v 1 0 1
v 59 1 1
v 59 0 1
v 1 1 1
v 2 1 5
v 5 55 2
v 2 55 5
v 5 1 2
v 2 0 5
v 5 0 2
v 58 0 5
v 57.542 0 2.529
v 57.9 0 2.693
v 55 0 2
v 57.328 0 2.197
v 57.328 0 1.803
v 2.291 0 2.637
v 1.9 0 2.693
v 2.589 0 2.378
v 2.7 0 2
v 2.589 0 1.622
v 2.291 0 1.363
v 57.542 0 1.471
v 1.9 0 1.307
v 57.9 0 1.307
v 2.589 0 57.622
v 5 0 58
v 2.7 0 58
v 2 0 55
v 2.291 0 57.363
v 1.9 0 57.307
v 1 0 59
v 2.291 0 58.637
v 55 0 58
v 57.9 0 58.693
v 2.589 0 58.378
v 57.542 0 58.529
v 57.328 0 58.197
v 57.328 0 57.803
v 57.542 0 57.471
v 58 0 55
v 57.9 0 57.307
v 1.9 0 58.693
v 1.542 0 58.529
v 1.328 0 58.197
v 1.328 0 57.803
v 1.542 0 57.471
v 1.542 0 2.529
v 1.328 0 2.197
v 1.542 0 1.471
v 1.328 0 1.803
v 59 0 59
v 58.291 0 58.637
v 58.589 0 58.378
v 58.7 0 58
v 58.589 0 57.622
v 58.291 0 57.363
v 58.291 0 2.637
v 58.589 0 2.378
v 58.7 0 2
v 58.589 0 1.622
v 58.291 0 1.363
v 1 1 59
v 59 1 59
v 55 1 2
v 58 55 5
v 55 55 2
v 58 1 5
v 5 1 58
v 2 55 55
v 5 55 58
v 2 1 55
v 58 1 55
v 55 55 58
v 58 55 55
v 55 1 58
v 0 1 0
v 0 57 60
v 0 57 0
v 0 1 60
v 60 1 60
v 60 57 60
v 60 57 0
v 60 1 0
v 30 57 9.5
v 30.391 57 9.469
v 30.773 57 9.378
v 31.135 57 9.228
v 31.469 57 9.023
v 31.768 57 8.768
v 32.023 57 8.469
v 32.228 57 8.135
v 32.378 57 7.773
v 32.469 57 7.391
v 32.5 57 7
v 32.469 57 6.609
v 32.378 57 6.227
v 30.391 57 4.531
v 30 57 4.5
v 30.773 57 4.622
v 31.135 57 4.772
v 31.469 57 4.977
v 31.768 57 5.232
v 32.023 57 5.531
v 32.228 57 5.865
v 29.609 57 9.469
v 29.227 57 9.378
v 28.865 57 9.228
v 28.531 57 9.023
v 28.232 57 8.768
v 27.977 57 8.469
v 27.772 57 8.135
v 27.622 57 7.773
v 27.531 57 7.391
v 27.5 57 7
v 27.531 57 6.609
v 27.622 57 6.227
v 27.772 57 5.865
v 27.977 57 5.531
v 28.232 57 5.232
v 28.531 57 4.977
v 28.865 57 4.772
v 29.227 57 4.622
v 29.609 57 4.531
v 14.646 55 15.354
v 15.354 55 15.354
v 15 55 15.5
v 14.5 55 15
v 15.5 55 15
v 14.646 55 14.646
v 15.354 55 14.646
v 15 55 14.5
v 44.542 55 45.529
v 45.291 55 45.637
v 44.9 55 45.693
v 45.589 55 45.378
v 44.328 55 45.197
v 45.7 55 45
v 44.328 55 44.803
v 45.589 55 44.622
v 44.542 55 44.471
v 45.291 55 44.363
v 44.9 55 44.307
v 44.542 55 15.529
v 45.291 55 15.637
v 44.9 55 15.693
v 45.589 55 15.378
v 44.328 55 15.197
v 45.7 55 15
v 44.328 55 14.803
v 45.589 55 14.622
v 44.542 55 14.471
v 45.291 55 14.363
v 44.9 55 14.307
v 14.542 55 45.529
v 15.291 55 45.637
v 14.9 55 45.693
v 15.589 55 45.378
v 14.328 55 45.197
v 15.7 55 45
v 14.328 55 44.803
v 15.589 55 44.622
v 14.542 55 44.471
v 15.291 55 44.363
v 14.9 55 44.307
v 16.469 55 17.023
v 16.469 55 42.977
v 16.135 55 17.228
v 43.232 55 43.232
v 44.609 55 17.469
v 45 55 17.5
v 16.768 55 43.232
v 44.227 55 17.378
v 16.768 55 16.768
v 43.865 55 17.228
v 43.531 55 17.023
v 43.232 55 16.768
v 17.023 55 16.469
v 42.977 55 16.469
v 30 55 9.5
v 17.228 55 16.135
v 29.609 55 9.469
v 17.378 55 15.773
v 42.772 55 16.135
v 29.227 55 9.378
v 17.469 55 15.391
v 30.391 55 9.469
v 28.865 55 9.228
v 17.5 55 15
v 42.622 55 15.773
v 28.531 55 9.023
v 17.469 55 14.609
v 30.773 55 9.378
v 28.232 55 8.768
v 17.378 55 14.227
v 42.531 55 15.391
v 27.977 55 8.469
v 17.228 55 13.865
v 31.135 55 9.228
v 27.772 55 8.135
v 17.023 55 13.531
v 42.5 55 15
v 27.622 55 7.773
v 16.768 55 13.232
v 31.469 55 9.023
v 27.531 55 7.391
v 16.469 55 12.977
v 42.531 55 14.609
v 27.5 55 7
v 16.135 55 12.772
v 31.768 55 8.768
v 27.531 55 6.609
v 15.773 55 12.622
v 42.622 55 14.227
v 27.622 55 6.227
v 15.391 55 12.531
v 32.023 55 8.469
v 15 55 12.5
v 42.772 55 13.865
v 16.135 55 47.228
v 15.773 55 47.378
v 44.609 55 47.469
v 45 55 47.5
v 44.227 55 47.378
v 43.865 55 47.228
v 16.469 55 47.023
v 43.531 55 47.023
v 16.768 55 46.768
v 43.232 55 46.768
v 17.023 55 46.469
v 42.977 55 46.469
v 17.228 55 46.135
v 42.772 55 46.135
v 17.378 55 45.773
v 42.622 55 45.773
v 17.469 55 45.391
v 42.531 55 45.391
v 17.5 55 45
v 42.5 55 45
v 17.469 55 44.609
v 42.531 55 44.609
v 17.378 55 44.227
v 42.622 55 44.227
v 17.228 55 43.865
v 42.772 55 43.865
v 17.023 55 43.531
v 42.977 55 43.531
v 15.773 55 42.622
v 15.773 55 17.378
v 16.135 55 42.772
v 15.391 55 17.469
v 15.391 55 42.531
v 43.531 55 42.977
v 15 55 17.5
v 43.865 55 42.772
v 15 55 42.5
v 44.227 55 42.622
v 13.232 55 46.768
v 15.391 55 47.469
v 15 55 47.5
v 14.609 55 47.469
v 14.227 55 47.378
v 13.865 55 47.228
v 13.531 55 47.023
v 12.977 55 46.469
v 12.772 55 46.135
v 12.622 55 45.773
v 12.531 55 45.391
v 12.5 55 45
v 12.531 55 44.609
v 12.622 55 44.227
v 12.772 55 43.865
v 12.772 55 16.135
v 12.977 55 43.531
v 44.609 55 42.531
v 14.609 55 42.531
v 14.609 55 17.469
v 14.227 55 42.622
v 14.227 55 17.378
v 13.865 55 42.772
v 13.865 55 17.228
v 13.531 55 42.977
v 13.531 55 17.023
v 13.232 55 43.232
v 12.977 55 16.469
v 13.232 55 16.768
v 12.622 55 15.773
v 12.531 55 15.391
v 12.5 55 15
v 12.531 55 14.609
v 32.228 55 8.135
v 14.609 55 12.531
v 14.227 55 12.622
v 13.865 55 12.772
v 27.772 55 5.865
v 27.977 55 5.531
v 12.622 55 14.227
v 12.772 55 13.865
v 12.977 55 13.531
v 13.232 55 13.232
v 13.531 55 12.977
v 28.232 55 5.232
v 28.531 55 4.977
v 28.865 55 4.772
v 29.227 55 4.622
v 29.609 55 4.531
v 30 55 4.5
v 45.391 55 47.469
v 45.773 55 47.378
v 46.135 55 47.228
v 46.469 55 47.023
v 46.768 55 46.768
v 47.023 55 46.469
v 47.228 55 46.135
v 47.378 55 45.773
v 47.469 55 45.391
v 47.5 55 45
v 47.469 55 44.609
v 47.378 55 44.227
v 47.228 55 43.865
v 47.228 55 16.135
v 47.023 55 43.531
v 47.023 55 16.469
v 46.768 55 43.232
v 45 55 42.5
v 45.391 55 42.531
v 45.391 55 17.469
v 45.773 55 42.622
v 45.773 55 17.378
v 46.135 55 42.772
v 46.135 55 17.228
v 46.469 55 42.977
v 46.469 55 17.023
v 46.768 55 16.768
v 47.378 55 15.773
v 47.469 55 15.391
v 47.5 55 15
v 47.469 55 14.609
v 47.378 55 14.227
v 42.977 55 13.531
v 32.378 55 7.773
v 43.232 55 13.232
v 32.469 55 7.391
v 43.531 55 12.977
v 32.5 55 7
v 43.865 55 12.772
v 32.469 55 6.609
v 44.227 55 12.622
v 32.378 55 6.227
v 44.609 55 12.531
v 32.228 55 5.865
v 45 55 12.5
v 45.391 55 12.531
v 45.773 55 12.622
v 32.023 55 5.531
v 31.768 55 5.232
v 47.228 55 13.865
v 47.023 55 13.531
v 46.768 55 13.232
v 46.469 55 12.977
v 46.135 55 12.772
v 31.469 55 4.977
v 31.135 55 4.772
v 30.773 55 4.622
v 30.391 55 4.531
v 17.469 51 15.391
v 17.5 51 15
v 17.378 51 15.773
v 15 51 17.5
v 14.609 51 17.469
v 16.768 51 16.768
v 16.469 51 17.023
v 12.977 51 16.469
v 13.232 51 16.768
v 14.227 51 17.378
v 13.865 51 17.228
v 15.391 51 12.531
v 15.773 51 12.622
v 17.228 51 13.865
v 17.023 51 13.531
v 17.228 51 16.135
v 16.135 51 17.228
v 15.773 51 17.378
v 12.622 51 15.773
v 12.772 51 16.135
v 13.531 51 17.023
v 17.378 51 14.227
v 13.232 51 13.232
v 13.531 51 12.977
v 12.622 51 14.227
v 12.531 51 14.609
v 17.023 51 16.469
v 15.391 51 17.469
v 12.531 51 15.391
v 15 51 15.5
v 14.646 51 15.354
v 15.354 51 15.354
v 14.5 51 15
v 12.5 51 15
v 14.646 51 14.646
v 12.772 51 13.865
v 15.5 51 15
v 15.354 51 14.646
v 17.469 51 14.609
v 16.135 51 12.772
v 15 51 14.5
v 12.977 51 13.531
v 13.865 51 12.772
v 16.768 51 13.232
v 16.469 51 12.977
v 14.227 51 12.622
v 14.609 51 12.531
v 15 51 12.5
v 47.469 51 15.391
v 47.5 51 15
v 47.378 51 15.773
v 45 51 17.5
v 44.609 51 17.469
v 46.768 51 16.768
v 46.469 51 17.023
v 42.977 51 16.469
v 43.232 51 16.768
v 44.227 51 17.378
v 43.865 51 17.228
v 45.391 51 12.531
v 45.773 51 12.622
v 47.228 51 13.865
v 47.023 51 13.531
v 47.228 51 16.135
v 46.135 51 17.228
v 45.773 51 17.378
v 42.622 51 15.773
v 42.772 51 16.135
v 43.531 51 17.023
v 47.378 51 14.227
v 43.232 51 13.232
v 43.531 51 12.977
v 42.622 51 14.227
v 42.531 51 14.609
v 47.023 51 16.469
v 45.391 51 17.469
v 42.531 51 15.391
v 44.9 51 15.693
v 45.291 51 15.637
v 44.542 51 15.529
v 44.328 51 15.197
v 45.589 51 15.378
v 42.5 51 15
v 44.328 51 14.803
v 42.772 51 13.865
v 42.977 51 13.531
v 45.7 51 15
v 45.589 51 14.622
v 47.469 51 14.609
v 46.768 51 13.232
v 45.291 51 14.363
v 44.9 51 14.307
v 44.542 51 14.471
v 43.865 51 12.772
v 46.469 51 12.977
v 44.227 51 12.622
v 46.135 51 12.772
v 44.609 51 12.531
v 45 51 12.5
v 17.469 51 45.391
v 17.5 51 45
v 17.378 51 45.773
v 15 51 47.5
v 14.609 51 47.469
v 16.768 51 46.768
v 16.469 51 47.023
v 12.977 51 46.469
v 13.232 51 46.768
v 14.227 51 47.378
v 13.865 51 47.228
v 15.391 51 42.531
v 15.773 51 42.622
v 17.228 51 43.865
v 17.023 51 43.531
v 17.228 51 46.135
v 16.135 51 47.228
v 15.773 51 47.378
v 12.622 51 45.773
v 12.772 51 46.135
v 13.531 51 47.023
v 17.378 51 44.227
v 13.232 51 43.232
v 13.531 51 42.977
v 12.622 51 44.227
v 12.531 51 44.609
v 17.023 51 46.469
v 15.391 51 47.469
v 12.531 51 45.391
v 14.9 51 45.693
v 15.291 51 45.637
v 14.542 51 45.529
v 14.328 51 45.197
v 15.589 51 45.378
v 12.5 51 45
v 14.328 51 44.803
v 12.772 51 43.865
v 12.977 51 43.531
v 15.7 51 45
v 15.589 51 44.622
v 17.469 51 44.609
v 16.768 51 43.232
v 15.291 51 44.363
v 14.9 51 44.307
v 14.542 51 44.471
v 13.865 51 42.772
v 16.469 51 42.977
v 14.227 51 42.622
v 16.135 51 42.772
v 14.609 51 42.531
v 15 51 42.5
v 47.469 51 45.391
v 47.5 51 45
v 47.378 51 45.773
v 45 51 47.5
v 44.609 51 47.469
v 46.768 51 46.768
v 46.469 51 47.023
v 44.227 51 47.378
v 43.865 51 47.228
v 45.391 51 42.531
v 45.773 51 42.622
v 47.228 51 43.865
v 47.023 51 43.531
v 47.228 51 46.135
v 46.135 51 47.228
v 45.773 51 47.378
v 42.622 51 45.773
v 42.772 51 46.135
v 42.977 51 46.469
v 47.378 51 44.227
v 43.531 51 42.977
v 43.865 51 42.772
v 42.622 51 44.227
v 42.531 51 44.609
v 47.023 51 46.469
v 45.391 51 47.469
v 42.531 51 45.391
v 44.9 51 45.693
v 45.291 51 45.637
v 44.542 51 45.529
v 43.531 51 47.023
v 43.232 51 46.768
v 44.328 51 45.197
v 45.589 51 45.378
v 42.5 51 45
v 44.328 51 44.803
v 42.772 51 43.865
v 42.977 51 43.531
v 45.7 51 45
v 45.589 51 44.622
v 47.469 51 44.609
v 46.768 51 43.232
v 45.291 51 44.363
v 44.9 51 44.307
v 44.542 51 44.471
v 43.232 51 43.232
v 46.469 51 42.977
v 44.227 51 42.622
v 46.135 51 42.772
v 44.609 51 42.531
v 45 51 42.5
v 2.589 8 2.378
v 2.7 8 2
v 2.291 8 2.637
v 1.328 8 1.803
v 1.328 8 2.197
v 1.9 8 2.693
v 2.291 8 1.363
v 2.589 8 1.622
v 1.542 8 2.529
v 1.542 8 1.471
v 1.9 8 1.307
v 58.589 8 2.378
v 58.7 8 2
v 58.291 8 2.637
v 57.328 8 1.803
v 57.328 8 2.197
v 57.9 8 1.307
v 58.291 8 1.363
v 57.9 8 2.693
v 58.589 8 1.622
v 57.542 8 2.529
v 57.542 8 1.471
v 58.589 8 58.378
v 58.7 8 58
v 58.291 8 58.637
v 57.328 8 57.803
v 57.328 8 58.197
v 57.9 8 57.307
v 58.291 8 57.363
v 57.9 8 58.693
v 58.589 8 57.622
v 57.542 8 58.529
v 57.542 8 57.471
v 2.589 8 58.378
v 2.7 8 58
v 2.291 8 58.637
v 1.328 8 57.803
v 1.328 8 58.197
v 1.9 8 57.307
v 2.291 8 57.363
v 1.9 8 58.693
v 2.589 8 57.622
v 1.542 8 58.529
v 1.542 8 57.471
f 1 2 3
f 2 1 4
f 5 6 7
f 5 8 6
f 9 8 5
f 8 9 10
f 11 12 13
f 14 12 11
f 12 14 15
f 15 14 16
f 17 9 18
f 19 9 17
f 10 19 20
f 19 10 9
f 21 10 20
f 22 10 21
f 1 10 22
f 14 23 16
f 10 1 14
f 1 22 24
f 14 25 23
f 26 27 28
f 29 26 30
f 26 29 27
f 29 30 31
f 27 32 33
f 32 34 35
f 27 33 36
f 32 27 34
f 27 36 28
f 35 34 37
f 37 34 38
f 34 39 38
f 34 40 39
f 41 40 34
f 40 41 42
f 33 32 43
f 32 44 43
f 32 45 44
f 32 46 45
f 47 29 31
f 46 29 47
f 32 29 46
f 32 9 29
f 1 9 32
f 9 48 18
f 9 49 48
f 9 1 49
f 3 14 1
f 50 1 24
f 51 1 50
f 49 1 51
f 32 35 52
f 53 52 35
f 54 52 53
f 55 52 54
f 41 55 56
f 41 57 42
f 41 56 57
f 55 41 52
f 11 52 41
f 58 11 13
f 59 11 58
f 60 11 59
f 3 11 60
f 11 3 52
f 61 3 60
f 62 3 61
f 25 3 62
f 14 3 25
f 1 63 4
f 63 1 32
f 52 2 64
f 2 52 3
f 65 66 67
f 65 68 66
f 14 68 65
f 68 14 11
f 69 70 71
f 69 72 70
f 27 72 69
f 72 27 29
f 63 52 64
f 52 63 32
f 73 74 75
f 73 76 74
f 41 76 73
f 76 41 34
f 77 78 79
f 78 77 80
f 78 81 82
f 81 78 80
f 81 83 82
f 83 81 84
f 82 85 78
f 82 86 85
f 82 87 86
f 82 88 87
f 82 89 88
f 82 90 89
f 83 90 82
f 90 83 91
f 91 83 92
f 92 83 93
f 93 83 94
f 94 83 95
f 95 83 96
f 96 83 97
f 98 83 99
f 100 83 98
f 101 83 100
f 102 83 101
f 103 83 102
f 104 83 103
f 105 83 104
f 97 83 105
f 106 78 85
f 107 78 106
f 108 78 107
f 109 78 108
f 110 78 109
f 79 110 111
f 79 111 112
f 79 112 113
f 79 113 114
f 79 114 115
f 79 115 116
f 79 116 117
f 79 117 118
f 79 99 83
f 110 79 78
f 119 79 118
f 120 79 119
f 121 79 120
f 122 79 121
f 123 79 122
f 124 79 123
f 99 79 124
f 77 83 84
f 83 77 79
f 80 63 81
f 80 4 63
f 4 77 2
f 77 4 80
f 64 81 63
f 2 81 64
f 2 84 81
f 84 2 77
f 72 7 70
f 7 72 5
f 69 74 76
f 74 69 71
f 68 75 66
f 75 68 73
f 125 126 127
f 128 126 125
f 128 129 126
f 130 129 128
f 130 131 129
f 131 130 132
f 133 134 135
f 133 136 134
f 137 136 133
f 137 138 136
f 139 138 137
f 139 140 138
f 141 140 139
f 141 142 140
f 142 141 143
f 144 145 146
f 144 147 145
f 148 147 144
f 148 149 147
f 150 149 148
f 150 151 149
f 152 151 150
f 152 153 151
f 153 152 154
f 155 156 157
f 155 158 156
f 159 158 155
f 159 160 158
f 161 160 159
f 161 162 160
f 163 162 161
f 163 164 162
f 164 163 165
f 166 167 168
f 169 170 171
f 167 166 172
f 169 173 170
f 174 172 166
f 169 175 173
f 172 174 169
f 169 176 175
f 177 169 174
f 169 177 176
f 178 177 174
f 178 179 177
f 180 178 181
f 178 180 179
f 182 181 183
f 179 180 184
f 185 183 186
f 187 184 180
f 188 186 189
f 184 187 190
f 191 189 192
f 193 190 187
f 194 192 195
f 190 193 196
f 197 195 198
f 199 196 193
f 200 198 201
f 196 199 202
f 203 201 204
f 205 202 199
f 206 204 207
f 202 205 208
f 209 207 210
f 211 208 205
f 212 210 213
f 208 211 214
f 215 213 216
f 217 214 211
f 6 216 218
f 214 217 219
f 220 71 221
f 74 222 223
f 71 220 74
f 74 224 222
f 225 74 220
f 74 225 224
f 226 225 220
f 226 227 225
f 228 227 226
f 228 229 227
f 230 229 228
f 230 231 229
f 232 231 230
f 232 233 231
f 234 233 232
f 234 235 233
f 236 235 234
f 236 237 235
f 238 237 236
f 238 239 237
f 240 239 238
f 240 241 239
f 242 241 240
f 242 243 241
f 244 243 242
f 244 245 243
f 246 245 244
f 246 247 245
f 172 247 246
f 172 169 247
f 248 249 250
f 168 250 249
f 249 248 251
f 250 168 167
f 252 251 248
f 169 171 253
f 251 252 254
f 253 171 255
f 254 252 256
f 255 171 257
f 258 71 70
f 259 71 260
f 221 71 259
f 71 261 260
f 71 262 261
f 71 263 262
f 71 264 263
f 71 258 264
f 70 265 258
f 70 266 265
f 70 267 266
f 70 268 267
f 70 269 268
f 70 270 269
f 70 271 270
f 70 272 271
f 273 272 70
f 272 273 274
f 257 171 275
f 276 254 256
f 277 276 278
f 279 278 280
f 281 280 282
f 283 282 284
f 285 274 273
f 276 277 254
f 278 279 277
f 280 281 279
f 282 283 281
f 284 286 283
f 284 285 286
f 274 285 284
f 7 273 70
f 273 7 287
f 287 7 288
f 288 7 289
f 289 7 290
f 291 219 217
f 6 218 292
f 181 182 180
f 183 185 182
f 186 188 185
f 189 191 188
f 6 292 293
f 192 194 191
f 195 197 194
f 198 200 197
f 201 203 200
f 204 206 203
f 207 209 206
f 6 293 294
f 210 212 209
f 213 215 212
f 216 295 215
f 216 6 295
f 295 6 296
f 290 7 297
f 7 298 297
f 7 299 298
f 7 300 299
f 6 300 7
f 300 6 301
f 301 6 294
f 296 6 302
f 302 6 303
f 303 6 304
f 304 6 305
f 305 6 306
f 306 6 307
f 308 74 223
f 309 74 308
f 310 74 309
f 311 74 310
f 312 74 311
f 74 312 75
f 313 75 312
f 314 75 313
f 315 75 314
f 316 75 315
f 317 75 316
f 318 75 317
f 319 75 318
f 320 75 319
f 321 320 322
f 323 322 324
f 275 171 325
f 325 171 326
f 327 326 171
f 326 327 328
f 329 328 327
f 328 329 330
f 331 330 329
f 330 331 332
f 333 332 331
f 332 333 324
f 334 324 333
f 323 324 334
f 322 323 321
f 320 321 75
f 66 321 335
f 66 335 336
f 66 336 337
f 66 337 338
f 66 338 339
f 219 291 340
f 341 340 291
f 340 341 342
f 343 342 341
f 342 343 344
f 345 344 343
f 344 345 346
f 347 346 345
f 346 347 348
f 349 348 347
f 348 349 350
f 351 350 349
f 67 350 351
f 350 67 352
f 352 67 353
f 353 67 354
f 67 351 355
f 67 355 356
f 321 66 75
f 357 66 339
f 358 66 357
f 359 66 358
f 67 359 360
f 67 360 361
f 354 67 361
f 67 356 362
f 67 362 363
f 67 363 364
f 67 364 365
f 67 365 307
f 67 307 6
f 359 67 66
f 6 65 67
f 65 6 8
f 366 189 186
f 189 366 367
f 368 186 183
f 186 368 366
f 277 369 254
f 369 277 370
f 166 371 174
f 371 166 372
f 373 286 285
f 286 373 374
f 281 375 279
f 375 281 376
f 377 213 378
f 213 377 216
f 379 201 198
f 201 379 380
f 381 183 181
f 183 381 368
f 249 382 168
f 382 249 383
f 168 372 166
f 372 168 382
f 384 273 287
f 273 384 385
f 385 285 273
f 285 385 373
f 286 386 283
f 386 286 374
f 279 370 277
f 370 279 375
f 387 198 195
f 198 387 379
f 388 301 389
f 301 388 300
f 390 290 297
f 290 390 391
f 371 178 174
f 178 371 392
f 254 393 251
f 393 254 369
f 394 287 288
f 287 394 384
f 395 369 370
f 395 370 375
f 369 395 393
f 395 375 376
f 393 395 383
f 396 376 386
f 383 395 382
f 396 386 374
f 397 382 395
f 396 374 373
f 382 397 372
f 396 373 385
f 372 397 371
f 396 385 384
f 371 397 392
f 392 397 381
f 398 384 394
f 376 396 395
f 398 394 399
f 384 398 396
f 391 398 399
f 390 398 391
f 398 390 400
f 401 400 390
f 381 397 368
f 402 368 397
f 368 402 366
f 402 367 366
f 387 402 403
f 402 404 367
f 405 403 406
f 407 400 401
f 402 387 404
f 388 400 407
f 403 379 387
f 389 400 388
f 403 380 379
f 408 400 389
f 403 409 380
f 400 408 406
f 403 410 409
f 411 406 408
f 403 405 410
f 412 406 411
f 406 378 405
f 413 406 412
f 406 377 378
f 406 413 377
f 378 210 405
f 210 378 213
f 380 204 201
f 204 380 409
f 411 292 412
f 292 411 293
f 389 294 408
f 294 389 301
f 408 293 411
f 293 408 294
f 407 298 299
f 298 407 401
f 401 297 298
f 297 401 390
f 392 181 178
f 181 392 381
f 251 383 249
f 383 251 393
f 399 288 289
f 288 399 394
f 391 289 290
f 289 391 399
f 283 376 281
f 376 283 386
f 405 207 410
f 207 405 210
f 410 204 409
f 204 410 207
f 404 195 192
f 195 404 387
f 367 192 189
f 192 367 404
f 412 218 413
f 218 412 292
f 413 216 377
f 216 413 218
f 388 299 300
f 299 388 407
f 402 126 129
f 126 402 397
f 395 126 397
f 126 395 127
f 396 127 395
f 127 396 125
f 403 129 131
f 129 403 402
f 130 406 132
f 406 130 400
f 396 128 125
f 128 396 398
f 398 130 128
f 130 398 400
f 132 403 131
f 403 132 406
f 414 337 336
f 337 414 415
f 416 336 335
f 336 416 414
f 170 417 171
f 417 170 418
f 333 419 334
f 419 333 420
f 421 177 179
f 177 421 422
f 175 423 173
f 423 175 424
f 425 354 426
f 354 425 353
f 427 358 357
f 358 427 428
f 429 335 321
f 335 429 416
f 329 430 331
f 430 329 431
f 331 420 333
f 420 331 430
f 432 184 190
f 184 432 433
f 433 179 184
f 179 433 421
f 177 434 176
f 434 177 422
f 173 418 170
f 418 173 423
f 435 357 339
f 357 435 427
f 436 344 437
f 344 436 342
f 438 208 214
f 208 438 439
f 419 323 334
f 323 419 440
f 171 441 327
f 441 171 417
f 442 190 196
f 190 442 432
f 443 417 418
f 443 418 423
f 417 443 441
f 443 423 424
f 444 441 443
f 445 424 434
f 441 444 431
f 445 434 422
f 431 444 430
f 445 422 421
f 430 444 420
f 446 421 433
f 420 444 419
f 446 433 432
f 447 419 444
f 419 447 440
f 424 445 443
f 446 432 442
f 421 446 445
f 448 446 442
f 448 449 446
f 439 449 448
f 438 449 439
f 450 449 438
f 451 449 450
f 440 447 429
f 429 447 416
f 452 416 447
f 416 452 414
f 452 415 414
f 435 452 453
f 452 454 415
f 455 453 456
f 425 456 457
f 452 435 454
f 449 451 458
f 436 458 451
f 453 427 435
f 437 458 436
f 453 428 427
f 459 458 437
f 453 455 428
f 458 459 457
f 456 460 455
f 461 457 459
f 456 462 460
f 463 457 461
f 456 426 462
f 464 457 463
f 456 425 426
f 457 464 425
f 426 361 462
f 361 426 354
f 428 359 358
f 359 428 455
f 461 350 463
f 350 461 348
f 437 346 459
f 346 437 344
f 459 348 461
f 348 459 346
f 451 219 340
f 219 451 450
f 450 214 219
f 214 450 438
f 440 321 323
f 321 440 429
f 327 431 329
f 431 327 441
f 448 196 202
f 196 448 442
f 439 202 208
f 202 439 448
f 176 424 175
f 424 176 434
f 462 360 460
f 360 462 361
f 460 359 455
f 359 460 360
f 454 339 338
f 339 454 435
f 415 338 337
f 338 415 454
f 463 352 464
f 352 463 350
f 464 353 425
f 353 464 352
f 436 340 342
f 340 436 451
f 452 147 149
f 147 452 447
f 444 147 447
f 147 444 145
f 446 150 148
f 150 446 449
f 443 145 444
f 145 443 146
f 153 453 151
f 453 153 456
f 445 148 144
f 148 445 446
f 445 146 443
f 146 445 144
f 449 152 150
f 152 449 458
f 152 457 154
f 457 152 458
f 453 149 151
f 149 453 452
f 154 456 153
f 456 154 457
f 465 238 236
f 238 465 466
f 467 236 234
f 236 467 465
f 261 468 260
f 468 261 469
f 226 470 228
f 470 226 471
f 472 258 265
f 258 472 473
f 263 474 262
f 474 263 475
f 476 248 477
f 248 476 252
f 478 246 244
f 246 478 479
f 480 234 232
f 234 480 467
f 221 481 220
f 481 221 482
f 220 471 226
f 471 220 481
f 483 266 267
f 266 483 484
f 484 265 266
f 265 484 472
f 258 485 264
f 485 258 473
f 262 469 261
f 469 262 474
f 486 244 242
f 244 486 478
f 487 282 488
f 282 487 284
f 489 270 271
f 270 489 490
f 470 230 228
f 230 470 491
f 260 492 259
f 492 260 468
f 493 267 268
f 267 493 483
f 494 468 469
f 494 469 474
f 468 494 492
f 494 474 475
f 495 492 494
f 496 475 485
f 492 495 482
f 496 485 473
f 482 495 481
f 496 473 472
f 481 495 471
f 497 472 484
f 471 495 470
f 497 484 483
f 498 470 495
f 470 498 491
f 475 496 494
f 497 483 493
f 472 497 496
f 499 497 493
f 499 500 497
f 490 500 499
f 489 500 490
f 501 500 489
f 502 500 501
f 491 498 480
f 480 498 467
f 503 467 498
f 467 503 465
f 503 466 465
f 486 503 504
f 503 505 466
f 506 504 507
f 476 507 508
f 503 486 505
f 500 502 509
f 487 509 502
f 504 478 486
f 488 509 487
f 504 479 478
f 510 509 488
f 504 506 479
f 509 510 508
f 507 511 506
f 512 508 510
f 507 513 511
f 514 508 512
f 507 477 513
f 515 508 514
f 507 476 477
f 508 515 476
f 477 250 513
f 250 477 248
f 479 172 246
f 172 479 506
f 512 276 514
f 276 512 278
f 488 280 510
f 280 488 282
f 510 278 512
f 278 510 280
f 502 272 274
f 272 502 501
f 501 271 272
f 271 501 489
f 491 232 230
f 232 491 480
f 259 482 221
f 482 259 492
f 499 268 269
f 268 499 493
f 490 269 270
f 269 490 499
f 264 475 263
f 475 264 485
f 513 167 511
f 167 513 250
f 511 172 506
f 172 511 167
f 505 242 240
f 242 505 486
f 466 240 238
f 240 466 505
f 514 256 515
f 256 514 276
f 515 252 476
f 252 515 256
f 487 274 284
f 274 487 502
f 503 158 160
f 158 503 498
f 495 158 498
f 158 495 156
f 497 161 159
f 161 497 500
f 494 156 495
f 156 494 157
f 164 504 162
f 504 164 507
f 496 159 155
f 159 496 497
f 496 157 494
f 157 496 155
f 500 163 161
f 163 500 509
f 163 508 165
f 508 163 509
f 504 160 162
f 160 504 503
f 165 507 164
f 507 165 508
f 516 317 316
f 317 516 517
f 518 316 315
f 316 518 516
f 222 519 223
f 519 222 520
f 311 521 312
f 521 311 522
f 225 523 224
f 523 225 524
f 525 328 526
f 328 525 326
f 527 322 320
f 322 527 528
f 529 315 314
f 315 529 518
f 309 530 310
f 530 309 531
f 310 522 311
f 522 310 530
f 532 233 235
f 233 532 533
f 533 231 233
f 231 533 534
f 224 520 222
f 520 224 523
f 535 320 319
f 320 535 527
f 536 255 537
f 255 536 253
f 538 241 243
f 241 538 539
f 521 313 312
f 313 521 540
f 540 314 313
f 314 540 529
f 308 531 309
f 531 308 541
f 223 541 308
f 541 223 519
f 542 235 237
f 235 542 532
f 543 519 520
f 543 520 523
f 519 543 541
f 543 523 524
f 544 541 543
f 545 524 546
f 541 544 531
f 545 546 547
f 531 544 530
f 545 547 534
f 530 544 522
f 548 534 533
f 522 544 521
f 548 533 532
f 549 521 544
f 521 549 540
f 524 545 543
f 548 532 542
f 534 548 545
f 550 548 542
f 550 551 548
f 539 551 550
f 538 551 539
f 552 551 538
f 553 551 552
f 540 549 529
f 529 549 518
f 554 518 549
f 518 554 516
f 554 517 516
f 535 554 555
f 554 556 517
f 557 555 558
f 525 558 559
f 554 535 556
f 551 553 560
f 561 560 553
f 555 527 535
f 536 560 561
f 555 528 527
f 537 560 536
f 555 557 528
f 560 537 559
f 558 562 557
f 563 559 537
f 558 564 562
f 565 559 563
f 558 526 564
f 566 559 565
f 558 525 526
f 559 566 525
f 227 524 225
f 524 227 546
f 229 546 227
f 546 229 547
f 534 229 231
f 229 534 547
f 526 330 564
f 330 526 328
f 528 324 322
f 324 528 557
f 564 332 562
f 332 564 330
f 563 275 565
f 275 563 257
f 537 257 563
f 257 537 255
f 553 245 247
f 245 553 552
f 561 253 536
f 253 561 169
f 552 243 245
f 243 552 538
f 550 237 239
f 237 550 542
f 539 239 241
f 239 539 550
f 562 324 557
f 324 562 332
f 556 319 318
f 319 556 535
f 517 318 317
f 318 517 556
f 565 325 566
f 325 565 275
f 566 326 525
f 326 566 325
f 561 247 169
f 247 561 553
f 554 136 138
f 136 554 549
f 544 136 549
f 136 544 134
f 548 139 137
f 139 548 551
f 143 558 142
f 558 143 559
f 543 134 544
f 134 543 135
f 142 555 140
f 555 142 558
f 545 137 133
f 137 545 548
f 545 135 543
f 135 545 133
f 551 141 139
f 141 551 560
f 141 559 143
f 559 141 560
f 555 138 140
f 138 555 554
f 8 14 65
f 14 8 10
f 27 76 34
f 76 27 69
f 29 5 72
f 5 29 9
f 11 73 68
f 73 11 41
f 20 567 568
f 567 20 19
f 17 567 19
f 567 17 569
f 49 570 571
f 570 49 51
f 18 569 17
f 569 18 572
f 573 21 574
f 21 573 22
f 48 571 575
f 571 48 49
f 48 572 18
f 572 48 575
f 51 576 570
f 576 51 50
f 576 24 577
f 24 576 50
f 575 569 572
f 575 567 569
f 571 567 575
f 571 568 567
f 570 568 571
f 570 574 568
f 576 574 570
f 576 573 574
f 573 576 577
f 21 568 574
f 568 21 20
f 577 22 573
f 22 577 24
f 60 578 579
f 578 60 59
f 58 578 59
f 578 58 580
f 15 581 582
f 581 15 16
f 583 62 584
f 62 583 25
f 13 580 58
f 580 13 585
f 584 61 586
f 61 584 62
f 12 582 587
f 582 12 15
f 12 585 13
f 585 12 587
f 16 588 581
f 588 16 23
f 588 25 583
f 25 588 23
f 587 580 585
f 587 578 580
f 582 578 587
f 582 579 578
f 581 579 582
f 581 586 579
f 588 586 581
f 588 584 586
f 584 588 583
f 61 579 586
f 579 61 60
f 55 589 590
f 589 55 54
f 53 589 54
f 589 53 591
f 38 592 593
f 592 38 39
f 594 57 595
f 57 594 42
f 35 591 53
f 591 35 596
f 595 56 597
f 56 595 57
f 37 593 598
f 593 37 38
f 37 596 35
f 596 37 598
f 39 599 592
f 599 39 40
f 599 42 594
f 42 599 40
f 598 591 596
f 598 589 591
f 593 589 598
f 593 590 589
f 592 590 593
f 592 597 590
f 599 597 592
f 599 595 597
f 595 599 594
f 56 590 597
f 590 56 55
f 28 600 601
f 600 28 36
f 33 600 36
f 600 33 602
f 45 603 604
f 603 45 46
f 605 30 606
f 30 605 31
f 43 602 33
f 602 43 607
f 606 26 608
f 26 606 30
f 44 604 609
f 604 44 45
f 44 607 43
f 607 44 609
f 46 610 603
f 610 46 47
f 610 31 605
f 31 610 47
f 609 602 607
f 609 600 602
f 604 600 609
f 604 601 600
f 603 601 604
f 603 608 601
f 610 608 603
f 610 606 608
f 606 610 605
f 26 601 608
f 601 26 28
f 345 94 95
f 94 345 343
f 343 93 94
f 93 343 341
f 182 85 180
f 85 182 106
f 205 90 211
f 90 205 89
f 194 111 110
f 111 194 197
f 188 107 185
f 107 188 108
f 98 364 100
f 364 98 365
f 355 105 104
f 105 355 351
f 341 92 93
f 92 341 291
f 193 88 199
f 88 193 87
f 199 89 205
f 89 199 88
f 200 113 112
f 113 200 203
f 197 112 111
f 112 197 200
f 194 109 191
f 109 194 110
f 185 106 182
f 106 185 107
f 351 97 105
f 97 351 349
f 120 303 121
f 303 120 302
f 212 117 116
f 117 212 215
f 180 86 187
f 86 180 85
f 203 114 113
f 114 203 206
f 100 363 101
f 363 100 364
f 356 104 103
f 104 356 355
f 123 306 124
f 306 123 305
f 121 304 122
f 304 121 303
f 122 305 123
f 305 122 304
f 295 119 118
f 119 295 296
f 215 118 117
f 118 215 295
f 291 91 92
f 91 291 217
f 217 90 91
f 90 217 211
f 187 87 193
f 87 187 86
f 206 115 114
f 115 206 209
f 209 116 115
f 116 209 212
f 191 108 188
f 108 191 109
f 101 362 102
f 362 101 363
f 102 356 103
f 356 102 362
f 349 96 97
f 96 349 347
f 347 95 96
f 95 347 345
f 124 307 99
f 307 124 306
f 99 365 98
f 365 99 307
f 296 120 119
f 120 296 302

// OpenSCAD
$fa = 1;
$fs = 0.4;

Xsize = 60;
Ysize = 56;
Zsize = 60;

module body() {
    difference() {
        translate([0, 1, 0])
            cube([Xsize, Ysize, Zsize]);
        
        translate([2, -2, 2])
            cube([Xsize - 4, Ysize + 1, Zsize - 4]);
    }

    translate([1, 0, 1])
        cube([Xsize - 2, 1, 1]);
    translate([1, 0, Zsize - 2])
        cube([Xsize - 2, 1, 1]);
    translate([1, 0, 1])
        cube([1, 1, Zsize - 2]);
    translate([Xsize - 2, 0, 1])
        cube([1, 1, Zsize - 2]);

    difference() {
        rotate([90,0,0])
            translate([15, 15, -Zsize + 4])
                cylinder(h=5,r=2.5);
        
        rotate([90,0,0])
            translate([15, 15, -Zsize + 4])
                cylinder(h=5,r=.5);
    }
    difference() {
        rotate([90,0,0])
            translate([45, 15, -Zsize + 4])
                cylinder(h=5,r=2.5);
        
        rotate([90,0,0])
            translate([45, 15, -Zsize + 4])
                cylinder(h=5,r=.7);
    }    
    difference() {
        rotate([90,0,0])
            translate([15, 45, -Zsize + 4])
                cylinder(h=5,r=2.5);
        
        rotate([90,0,0])
            translate([15, 45, -Zsize + 4])
                cylinder(h=5,r=.7);
    }
    difference() {
        rotate([90,0,0])
            translate([45, 45, -Zsize + 4])
                cylinder(h=5,r=2.5);
        
        rotate([90,0,0])
            translate([45, 45, -Zsize + 4])
                cylinder(h=5,r=.7);
    }
    
}

module rect() {
    p0 = [1, 1];
    p1 = [1, 6];
    p2 = [6, 1];
    points = [p0, p1, p2];
    polygon(points);
}

module corners() {

translate([0, Ysize, 0])
    rotate([90, 0, 0])
        linear_extrude(height = Ysize)
            rect();
    
translate([Xsize, Ysize, 0])
    rotate([90, 270,0])
        linear_extrude(height = Ysize)
            rect();
    
translate([0, Ysize, Zsize])
    rotate([90, 90, 0])
        linear_extrude(height = Ysize)
            rect();
    
translate([Xsize, Ysize, Zsize])
    rotate([90, 180, 0])
        linear_extrude(height = Ysize)
            rect();
}

module boco() {
    body();
    corners();
}

difference() {
    boco();
    
    rotate([90,0,0])
        translate([2, 2, -8])
            cylinder(h=12,r=.7);
    
    rotate([90,0,0])
        translate([Xsize - 2, 2, -8])
            cylinder(h=12,r=.7);
    
    rotate([90,0,0])
        translate([Xsize - 2, Ysize + 2, -8])
            cylinder(h=12,r=.7);
    
    rotate([90,0,0])
        translate([2, Ysize + 2, -8])
            cylinder(h=12,r=.7);

    rotate([90,0,0])
        translate([30, 7, -Zsize])
            cylinder(h=20, r=2.5);
    
}
